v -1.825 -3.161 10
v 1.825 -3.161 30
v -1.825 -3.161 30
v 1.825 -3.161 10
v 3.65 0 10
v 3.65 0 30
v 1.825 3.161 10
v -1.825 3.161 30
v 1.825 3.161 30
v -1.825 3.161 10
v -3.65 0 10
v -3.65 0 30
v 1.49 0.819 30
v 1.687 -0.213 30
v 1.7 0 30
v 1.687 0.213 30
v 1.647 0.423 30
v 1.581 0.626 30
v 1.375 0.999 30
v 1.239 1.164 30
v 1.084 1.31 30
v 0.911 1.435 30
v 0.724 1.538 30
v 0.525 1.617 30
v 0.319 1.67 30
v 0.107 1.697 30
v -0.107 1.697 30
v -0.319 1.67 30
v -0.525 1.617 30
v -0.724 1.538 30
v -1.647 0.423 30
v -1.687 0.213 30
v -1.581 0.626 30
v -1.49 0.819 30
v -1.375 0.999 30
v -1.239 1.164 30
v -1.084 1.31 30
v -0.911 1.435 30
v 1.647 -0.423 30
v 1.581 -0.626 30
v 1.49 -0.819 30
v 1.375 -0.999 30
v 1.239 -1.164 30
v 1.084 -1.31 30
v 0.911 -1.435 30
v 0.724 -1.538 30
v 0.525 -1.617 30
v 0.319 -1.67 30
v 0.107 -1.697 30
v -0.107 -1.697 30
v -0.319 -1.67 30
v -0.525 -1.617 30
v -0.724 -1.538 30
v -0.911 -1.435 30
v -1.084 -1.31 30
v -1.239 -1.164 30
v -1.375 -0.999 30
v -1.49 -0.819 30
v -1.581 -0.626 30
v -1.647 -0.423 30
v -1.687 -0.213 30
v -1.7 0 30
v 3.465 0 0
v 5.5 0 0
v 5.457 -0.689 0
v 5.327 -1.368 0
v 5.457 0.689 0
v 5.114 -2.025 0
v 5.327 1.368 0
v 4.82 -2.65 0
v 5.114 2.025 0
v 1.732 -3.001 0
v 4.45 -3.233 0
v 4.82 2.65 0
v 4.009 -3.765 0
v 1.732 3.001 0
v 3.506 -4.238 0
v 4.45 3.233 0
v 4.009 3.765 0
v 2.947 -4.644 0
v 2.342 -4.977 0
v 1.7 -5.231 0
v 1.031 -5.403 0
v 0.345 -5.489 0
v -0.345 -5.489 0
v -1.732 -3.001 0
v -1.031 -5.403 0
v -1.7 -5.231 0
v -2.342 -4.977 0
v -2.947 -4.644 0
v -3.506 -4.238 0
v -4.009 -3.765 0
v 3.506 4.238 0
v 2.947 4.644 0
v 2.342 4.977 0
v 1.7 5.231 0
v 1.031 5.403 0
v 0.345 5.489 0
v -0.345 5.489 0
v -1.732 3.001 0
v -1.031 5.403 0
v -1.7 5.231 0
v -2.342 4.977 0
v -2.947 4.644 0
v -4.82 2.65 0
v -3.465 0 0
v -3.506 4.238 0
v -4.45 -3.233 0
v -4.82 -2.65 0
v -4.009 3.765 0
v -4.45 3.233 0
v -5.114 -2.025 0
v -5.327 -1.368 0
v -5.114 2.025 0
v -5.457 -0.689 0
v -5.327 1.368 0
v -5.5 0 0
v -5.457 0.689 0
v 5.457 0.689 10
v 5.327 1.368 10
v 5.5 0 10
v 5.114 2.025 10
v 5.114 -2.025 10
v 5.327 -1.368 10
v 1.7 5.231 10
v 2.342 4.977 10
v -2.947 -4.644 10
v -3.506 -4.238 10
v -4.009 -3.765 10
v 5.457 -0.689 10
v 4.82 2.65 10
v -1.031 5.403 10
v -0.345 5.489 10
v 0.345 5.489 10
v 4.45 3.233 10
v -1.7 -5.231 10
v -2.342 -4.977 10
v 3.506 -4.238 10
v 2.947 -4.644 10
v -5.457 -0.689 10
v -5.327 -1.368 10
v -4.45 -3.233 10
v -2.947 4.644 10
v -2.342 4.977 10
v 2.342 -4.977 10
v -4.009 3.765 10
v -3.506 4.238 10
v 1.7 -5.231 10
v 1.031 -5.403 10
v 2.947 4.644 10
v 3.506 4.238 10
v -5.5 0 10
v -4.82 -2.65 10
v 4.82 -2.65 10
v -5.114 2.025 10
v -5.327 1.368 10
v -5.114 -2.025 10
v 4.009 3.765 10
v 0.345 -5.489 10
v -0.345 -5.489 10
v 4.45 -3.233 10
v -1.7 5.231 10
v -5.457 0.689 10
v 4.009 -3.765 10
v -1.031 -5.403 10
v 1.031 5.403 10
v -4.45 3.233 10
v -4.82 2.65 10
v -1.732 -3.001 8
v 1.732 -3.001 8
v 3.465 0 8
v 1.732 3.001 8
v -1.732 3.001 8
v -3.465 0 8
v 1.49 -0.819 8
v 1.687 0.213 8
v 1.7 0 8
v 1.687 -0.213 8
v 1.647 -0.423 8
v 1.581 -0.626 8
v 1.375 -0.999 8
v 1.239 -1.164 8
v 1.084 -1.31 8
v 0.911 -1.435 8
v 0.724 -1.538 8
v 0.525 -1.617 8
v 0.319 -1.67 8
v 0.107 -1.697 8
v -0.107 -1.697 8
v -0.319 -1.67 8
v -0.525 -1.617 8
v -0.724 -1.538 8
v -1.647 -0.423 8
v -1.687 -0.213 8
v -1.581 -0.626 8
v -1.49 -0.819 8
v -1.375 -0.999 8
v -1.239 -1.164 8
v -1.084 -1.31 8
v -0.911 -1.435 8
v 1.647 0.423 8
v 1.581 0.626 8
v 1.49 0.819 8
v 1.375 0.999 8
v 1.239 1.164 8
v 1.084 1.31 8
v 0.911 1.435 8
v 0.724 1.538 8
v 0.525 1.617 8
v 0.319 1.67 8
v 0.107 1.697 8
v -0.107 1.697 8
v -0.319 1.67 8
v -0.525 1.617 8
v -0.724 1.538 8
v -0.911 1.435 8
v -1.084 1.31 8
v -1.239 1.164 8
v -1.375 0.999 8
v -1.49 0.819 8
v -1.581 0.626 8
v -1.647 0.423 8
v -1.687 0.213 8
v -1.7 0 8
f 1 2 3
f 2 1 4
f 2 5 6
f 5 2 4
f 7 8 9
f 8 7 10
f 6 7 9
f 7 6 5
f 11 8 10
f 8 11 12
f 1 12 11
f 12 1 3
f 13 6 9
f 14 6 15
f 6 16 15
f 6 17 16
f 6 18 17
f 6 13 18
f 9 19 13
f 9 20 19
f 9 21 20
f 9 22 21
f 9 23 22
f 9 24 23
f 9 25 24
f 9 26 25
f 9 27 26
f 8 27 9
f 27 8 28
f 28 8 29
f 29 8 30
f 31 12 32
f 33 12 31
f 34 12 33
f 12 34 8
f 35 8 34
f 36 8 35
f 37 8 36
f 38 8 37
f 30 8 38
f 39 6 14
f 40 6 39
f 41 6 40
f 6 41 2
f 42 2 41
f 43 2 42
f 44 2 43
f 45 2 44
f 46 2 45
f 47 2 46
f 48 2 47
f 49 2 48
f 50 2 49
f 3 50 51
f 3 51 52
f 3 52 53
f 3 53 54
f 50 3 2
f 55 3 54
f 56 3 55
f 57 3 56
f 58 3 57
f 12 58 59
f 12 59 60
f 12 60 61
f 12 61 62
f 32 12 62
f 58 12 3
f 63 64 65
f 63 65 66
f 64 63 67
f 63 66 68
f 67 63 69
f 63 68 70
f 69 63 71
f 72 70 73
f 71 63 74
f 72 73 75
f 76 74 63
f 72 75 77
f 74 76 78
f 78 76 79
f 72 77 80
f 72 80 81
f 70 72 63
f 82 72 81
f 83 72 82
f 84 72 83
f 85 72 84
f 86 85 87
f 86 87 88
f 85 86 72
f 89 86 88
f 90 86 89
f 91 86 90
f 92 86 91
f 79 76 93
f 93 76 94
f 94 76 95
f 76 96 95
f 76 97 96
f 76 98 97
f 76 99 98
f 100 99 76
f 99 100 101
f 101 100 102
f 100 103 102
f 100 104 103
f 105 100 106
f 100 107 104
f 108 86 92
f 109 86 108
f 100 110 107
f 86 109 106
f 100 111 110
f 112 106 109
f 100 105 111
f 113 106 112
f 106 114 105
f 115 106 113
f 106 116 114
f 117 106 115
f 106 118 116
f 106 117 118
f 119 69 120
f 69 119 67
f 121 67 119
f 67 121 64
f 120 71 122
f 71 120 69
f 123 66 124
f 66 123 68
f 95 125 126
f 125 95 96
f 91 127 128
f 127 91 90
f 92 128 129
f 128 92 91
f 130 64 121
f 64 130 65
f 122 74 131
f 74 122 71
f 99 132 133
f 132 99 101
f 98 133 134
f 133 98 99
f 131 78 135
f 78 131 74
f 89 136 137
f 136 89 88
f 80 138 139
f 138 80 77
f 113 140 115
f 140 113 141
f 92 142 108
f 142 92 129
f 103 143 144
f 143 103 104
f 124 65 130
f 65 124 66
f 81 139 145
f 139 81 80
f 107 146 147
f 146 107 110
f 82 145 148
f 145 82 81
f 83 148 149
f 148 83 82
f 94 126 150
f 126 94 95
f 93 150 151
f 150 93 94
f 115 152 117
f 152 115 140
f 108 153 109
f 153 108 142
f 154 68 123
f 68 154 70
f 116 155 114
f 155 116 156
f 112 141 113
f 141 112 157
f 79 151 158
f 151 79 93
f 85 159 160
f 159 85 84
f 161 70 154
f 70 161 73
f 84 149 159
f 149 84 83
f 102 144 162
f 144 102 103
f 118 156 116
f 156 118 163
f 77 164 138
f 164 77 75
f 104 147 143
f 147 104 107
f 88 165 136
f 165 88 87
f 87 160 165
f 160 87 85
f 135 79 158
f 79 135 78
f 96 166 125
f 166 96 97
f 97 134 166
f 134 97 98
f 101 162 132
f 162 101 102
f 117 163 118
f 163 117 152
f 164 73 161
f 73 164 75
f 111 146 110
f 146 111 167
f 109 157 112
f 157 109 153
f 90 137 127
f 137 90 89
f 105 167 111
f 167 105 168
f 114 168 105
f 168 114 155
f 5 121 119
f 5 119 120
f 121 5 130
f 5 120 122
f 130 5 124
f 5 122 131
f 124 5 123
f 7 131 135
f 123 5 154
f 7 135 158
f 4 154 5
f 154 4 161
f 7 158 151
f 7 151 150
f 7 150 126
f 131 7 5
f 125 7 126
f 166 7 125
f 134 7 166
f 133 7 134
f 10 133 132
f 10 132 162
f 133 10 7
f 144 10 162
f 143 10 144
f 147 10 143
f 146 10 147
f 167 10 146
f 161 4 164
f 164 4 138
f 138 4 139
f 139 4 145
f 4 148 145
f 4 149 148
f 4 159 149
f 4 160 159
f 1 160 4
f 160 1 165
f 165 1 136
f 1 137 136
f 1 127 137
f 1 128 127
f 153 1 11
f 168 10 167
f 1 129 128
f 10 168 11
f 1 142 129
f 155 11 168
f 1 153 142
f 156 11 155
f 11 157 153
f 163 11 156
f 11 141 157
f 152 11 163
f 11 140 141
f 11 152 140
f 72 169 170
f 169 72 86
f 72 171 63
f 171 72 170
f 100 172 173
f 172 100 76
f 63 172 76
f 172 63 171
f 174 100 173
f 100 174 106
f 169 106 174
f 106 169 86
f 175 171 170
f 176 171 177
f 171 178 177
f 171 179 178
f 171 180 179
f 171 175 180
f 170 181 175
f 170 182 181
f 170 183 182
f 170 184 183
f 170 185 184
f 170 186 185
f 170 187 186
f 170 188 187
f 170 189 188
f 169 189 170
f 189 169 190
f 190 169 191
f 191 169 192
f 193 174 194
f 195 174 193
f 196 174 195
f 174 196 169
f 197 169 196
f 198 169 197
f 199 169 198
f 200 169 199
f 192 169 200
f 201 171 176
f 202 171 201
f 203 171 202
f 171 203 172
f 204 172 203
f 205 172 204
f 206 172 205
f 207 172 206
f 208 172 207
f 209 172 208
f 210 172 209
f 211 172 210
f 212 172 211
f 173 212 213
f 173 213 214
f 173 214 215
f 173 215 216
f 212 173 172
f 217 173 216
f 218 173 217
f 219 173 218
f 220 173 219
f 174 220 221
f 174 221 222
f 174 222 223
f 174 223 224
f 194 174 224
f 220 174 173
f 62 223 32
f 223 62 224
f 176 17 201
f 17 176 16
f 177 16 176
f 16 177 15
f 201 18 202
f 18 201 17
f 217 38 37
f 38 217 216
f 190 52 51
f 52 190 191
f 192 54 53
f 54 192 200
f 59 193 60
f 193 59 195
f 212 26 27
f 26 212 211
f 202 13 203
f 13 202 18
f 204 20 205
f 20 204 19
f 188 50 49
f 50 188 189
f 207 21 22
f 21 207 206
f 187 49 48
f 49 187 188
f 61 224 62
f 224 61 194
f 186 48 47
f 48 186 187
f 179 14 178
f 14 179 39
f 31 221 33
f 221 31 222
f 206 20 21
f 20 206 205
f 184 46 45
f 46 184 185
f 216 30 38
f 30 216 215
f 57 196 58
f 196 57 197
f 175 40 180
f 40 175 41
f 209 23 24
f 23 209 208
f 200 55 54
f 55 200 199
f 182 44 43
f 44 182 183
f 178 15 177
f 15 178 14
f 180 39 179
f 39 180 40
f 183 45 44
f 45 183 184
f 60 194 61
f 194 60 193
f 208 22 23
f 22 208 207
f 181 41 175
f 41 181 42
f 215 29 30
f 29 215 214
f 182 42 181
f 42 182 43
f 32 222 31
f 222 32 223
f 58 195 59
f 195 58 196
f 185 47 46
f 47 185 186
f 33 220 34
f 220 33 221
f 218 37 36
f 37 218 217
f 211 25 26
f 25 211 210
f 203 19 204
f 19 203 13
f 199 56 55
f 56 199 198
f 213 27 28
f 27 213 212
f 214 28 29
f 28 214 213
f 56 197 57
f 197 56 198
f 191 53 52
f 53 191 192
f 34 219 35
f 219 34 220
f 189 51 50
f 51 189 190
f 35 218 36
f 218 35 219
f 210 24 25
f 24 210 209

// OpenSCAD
/* M3 Socket driver bit
 * Copyright 2021 Alex Volkov <alex@flamy.ca>
 * License: Attribution-ShareAlike 4.0 International (CC BY-SA)
 * https://creativecommons.org/licenses/by-sa/4.0/
 */
include <../libs/hardware-recess.scad>;

TOTAL_LEN=30;
SOCKET_LEN=10;
difference(){
    union(){
        cylinder(d=7.3, h=TOTAL_LEN, $fn=6);
        cylinder(d=11, h=SOCKET_LEN, $fn=50);
    }
    cylinder(d=M_DIM[M3][3] + 0.23 , h=SOCKET_LEN - 2, $fn=6);
    cylinder(d=3.4, h=TOTAL_LEN, $fn=50);
}
